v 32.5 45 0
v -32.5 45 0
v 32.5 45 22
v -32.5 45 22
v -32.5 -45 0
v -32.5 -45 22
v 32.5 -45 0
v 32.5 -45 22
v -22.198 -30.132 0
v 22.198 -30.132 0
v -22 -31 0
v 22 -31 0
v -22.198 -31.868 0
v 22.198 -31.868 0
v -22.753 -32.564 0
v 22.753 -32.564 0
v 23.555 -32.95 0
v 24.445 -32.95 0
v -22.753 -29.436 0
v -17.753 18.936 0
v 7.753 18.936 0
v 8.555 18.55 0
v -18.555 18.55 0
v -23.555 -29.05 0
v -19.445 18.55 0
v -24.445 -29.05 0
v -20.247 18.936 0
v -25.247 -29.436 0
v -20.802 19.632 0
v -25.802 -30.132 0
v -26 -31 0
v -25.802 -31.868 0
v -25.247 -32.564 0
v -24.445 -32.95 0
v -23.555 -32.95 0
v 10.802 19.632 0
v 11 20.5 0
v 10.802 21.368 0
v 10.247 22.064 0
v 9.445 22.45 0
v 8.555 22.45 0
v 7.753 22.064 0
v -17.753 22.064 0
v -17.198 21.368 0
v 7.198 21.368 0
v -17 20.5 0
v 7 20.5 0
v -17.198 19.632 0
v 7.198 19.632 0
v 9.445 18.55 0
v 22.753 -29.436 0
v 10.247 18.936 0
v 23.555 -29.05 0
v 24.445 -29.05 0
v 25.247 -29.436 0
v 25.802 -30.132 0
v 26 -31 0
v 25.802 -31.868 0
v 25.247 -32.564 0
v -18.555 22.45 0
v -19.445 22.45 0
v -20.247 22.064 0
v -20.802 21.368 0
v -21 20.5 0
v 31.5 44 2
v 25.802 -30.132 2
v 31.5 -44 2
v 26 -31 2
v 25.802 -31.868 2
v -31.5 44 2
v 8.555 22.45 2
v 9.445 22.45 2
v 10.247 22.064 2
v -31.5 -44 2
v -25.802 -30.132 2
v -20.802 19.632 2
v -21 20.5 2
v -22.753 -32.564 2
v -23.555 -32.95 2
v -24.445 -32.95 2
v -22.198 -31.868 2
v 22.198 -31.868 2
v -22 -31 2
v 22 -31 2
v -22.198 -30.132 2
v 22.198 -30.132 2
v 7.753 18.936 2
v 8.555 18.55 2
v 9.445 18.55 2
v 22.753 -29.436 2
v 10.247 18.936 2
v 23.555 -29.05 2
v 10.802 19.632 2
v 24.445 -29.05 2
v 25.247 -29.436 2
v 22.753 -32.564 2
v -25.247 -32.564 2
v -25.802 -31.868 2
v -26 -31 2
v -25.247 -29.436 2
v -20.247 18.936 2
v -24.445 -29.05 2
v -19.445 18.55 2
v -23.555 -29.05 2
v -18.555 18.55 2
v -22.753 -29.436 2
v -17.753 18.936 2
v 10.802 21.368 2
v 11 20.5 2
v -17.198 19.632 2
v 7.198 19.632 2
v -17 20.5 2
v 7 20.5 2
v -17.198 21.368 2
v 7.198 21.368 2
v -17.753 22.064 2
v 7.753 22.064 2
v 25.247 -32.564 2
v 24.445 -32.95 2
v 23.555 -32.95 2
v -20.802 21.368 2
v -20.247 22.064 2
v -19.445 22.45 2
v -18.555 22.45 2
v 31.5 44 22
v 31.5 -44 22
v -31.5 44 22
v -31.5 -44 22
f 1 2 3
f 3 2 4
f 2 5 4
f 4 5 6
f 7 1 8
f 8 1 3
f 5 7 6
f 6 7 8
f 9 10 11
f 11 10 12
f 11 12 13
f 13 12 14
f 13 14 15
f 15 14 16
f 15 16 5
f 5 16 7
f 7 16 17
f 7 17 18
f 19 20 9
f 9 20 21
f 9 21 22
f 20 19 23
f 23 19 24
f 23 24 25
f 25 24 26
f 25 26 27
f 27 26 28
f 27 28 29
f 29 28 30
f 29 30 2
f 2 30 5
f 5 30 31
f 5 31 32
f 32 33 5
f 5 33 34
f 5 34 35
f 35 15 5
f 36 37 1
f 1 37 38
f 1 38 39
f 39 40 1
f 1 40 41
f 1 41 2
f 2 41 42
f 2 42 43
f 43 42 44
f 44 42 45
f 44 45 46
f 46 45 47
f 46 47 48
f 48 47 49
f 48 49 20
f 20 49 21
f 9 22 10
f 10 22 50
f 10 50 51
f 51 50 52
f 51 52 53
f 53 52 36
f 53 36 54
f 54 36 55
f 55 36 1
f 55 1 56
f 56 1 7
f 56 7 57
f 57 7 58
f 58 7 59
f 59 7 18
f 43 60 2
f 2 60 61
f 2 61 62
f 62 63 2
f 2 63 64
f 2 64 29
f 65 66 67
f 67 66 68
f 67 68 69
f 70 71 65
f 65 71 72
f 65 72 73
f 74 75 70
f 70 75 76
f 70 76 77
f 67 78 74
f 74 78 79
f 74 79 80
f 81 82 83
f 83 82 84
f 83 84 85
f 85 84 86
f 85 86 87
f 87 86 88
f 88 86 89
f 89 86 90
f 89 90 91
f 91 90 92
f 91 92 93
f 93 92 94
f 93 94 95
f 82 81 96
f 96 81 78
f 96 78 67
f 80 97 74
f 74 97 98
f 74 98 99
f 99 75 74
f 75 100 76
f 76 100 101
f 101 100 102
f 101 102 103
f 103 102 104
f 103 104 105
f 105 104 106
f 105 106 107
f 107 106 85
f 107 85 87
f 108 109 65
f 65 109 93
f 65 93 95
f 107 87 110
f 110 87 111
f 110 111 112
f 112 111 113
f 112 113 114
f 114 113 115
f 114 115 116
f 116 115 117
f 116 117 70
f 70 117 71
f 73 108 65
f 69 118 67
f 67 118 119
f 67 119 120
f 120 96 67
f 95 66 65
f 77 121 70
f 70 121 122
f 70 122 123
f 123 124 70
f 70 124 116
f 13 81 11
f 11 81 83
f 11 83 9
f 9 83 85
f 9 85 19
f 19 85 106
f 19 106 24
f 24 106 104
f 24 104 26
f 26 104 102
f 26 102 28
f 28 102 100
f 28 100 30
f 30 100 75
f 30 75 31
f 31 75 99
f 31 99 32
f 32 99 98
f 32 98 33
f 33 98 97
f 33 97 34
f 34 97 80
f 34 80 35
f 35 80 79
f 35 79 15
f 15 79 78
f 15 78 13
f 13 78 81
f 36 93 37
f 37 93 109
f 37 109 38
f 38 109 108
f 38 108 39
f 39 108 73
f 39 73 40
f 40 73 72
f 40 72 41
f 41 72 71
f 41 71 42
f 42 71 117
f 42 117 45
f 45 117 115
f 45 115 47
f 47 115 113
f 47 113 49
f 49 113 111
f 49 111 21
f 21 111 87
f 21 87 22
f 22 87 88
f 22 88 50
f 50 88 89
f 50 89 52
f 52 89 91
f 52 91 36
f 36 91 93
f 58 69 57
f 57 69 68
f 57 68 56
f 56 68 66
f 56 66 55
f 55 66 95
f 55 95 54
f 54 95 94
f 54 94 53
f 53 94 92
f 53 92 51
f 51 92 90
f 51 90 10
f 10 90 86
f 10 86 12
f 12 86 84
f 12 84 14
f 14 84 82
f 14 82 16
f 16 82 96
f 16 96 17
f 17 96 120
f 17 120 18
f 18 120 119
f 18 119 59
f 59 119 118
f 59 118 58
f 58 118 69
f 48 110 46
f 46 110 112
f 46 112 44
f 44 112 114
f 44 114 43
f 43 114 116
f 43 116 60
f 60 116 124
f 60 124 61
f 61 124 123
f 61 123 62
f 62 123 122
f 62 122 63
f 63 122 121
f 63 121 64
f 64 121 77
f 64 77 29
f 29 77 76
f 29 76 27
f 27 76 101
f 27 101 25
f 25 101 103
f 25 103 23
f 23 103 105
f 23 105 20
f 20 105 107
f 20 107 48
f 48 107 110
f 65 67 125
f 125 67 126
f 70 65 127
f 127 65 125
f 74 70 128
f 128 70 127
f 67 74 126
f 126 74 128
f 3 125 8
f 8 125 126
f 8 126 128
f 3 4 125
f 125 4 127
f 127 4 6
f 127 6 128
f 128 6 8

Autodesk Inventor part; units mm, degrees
ref_plane "YZ Plane" through (0, 0, 0) normal (1, 0, 0) x (0, 1, 0)
ref_plane "XZ Plane" through (0, 0, 0) normal (0, 1, 0) x (-1, 0, 0)
ref_plane "XY Plane" through (0, 0, 0) normal (0, 0, 1) x (1, 0, 0)
sketch "스케치1" plane through (0, 0, 0) normal (0, 0, 1) x (1, 0, 0)
  line L0 (-32.5, 45) -> (32.5, 45)
  line L1 (32.5, 45) -> (32.5, -45)
  line L2 (32.5, -45) -> (-32.5, -45)
  line L3 (-32.5, -45) -> (-32.5, 45)
  line L4 (-32.5, 45) -> (32.5, -45) construction
  line L5 (32.5, 45) -> (-32.5, -45) construction
  point P0 (0, 0)
  dimension "d1" = 65
  dimension "d2" = 90
extrude "돌출1" add sketch "스케치1" along normal blind 2
sketch "스케치2" plane through (0, 0, 2) normal (0, 0, 1) x (1, 0, 0)
  circle A0 centre (-24, -31) radius 2
  line L0 (-32.5, -45) -> (32.5, -45) projected
  line L1 (-32.5, 45) -> (-32.5, -45) projected
  circle A1 centre (24, -31) radius 2
  line L2 (32.5, -45) -> (32.5, 45) projected
  circle A2 centre (-19, 20.5) radius 2
  circle A3 centre (9, 20.5) radius 2
  point P0 (0, 0)
  dimension "d14" = 4
  dimension "d15" = 14
  dimension "d16" = 8.5
  dimension "d17" = 4
  dimension "d18" = 14
  dimension "d19" = 8.5
  dimension "d20" = 4
  dimension "d21" = 65.5
  dimension "d22" = 13.5
  dimension "d23" = 4
  dimension "d24" = 23.5
  dimension "d25" = 65.5
extrude "돌출2" cut sketch "스케치2" against normal blind 2
sketch "스케치3" plane through (0, 0, 2) normal (0, 0, 1) x (1, 0, 0)
  line L0 (32.5, -45) -> (32.5, 45) projected
  line L1 (-32.5, -45) -> (32.5, -45)
  line L2 (32.5, -45) -> (32.5, 45)
  line L3 (32.5, 45) -> (-32.5, 45)
  line L4 (-32.5, 45) -> (-32.5, -45)
  line L5 (-32.5, -45) -> (32.5, 45) construction
  line L6 (32.5, -45) -> (-32.5, 45) construction
  line L7 (-31.5, -44) -> (31.5, -44)
  line L8 (31.5, -44) -> (31.5, 44)
  line L9 (31.5, 44) -> (-31.5, 44)
  line L10 (-31.5, 44) -> (-31.5, -44)
  line L11 (-31.5, -44) -> (31.5, 44) construction
  line L12 (31.5, -44) -> (-31.5, 44) construction
  point P0 (0, 0)
  dimension "d28" = 63
  dimension "d29" = 88
extrude "돌출3" add sketch "스케치3" along normal blind 20
properties part number "case"
